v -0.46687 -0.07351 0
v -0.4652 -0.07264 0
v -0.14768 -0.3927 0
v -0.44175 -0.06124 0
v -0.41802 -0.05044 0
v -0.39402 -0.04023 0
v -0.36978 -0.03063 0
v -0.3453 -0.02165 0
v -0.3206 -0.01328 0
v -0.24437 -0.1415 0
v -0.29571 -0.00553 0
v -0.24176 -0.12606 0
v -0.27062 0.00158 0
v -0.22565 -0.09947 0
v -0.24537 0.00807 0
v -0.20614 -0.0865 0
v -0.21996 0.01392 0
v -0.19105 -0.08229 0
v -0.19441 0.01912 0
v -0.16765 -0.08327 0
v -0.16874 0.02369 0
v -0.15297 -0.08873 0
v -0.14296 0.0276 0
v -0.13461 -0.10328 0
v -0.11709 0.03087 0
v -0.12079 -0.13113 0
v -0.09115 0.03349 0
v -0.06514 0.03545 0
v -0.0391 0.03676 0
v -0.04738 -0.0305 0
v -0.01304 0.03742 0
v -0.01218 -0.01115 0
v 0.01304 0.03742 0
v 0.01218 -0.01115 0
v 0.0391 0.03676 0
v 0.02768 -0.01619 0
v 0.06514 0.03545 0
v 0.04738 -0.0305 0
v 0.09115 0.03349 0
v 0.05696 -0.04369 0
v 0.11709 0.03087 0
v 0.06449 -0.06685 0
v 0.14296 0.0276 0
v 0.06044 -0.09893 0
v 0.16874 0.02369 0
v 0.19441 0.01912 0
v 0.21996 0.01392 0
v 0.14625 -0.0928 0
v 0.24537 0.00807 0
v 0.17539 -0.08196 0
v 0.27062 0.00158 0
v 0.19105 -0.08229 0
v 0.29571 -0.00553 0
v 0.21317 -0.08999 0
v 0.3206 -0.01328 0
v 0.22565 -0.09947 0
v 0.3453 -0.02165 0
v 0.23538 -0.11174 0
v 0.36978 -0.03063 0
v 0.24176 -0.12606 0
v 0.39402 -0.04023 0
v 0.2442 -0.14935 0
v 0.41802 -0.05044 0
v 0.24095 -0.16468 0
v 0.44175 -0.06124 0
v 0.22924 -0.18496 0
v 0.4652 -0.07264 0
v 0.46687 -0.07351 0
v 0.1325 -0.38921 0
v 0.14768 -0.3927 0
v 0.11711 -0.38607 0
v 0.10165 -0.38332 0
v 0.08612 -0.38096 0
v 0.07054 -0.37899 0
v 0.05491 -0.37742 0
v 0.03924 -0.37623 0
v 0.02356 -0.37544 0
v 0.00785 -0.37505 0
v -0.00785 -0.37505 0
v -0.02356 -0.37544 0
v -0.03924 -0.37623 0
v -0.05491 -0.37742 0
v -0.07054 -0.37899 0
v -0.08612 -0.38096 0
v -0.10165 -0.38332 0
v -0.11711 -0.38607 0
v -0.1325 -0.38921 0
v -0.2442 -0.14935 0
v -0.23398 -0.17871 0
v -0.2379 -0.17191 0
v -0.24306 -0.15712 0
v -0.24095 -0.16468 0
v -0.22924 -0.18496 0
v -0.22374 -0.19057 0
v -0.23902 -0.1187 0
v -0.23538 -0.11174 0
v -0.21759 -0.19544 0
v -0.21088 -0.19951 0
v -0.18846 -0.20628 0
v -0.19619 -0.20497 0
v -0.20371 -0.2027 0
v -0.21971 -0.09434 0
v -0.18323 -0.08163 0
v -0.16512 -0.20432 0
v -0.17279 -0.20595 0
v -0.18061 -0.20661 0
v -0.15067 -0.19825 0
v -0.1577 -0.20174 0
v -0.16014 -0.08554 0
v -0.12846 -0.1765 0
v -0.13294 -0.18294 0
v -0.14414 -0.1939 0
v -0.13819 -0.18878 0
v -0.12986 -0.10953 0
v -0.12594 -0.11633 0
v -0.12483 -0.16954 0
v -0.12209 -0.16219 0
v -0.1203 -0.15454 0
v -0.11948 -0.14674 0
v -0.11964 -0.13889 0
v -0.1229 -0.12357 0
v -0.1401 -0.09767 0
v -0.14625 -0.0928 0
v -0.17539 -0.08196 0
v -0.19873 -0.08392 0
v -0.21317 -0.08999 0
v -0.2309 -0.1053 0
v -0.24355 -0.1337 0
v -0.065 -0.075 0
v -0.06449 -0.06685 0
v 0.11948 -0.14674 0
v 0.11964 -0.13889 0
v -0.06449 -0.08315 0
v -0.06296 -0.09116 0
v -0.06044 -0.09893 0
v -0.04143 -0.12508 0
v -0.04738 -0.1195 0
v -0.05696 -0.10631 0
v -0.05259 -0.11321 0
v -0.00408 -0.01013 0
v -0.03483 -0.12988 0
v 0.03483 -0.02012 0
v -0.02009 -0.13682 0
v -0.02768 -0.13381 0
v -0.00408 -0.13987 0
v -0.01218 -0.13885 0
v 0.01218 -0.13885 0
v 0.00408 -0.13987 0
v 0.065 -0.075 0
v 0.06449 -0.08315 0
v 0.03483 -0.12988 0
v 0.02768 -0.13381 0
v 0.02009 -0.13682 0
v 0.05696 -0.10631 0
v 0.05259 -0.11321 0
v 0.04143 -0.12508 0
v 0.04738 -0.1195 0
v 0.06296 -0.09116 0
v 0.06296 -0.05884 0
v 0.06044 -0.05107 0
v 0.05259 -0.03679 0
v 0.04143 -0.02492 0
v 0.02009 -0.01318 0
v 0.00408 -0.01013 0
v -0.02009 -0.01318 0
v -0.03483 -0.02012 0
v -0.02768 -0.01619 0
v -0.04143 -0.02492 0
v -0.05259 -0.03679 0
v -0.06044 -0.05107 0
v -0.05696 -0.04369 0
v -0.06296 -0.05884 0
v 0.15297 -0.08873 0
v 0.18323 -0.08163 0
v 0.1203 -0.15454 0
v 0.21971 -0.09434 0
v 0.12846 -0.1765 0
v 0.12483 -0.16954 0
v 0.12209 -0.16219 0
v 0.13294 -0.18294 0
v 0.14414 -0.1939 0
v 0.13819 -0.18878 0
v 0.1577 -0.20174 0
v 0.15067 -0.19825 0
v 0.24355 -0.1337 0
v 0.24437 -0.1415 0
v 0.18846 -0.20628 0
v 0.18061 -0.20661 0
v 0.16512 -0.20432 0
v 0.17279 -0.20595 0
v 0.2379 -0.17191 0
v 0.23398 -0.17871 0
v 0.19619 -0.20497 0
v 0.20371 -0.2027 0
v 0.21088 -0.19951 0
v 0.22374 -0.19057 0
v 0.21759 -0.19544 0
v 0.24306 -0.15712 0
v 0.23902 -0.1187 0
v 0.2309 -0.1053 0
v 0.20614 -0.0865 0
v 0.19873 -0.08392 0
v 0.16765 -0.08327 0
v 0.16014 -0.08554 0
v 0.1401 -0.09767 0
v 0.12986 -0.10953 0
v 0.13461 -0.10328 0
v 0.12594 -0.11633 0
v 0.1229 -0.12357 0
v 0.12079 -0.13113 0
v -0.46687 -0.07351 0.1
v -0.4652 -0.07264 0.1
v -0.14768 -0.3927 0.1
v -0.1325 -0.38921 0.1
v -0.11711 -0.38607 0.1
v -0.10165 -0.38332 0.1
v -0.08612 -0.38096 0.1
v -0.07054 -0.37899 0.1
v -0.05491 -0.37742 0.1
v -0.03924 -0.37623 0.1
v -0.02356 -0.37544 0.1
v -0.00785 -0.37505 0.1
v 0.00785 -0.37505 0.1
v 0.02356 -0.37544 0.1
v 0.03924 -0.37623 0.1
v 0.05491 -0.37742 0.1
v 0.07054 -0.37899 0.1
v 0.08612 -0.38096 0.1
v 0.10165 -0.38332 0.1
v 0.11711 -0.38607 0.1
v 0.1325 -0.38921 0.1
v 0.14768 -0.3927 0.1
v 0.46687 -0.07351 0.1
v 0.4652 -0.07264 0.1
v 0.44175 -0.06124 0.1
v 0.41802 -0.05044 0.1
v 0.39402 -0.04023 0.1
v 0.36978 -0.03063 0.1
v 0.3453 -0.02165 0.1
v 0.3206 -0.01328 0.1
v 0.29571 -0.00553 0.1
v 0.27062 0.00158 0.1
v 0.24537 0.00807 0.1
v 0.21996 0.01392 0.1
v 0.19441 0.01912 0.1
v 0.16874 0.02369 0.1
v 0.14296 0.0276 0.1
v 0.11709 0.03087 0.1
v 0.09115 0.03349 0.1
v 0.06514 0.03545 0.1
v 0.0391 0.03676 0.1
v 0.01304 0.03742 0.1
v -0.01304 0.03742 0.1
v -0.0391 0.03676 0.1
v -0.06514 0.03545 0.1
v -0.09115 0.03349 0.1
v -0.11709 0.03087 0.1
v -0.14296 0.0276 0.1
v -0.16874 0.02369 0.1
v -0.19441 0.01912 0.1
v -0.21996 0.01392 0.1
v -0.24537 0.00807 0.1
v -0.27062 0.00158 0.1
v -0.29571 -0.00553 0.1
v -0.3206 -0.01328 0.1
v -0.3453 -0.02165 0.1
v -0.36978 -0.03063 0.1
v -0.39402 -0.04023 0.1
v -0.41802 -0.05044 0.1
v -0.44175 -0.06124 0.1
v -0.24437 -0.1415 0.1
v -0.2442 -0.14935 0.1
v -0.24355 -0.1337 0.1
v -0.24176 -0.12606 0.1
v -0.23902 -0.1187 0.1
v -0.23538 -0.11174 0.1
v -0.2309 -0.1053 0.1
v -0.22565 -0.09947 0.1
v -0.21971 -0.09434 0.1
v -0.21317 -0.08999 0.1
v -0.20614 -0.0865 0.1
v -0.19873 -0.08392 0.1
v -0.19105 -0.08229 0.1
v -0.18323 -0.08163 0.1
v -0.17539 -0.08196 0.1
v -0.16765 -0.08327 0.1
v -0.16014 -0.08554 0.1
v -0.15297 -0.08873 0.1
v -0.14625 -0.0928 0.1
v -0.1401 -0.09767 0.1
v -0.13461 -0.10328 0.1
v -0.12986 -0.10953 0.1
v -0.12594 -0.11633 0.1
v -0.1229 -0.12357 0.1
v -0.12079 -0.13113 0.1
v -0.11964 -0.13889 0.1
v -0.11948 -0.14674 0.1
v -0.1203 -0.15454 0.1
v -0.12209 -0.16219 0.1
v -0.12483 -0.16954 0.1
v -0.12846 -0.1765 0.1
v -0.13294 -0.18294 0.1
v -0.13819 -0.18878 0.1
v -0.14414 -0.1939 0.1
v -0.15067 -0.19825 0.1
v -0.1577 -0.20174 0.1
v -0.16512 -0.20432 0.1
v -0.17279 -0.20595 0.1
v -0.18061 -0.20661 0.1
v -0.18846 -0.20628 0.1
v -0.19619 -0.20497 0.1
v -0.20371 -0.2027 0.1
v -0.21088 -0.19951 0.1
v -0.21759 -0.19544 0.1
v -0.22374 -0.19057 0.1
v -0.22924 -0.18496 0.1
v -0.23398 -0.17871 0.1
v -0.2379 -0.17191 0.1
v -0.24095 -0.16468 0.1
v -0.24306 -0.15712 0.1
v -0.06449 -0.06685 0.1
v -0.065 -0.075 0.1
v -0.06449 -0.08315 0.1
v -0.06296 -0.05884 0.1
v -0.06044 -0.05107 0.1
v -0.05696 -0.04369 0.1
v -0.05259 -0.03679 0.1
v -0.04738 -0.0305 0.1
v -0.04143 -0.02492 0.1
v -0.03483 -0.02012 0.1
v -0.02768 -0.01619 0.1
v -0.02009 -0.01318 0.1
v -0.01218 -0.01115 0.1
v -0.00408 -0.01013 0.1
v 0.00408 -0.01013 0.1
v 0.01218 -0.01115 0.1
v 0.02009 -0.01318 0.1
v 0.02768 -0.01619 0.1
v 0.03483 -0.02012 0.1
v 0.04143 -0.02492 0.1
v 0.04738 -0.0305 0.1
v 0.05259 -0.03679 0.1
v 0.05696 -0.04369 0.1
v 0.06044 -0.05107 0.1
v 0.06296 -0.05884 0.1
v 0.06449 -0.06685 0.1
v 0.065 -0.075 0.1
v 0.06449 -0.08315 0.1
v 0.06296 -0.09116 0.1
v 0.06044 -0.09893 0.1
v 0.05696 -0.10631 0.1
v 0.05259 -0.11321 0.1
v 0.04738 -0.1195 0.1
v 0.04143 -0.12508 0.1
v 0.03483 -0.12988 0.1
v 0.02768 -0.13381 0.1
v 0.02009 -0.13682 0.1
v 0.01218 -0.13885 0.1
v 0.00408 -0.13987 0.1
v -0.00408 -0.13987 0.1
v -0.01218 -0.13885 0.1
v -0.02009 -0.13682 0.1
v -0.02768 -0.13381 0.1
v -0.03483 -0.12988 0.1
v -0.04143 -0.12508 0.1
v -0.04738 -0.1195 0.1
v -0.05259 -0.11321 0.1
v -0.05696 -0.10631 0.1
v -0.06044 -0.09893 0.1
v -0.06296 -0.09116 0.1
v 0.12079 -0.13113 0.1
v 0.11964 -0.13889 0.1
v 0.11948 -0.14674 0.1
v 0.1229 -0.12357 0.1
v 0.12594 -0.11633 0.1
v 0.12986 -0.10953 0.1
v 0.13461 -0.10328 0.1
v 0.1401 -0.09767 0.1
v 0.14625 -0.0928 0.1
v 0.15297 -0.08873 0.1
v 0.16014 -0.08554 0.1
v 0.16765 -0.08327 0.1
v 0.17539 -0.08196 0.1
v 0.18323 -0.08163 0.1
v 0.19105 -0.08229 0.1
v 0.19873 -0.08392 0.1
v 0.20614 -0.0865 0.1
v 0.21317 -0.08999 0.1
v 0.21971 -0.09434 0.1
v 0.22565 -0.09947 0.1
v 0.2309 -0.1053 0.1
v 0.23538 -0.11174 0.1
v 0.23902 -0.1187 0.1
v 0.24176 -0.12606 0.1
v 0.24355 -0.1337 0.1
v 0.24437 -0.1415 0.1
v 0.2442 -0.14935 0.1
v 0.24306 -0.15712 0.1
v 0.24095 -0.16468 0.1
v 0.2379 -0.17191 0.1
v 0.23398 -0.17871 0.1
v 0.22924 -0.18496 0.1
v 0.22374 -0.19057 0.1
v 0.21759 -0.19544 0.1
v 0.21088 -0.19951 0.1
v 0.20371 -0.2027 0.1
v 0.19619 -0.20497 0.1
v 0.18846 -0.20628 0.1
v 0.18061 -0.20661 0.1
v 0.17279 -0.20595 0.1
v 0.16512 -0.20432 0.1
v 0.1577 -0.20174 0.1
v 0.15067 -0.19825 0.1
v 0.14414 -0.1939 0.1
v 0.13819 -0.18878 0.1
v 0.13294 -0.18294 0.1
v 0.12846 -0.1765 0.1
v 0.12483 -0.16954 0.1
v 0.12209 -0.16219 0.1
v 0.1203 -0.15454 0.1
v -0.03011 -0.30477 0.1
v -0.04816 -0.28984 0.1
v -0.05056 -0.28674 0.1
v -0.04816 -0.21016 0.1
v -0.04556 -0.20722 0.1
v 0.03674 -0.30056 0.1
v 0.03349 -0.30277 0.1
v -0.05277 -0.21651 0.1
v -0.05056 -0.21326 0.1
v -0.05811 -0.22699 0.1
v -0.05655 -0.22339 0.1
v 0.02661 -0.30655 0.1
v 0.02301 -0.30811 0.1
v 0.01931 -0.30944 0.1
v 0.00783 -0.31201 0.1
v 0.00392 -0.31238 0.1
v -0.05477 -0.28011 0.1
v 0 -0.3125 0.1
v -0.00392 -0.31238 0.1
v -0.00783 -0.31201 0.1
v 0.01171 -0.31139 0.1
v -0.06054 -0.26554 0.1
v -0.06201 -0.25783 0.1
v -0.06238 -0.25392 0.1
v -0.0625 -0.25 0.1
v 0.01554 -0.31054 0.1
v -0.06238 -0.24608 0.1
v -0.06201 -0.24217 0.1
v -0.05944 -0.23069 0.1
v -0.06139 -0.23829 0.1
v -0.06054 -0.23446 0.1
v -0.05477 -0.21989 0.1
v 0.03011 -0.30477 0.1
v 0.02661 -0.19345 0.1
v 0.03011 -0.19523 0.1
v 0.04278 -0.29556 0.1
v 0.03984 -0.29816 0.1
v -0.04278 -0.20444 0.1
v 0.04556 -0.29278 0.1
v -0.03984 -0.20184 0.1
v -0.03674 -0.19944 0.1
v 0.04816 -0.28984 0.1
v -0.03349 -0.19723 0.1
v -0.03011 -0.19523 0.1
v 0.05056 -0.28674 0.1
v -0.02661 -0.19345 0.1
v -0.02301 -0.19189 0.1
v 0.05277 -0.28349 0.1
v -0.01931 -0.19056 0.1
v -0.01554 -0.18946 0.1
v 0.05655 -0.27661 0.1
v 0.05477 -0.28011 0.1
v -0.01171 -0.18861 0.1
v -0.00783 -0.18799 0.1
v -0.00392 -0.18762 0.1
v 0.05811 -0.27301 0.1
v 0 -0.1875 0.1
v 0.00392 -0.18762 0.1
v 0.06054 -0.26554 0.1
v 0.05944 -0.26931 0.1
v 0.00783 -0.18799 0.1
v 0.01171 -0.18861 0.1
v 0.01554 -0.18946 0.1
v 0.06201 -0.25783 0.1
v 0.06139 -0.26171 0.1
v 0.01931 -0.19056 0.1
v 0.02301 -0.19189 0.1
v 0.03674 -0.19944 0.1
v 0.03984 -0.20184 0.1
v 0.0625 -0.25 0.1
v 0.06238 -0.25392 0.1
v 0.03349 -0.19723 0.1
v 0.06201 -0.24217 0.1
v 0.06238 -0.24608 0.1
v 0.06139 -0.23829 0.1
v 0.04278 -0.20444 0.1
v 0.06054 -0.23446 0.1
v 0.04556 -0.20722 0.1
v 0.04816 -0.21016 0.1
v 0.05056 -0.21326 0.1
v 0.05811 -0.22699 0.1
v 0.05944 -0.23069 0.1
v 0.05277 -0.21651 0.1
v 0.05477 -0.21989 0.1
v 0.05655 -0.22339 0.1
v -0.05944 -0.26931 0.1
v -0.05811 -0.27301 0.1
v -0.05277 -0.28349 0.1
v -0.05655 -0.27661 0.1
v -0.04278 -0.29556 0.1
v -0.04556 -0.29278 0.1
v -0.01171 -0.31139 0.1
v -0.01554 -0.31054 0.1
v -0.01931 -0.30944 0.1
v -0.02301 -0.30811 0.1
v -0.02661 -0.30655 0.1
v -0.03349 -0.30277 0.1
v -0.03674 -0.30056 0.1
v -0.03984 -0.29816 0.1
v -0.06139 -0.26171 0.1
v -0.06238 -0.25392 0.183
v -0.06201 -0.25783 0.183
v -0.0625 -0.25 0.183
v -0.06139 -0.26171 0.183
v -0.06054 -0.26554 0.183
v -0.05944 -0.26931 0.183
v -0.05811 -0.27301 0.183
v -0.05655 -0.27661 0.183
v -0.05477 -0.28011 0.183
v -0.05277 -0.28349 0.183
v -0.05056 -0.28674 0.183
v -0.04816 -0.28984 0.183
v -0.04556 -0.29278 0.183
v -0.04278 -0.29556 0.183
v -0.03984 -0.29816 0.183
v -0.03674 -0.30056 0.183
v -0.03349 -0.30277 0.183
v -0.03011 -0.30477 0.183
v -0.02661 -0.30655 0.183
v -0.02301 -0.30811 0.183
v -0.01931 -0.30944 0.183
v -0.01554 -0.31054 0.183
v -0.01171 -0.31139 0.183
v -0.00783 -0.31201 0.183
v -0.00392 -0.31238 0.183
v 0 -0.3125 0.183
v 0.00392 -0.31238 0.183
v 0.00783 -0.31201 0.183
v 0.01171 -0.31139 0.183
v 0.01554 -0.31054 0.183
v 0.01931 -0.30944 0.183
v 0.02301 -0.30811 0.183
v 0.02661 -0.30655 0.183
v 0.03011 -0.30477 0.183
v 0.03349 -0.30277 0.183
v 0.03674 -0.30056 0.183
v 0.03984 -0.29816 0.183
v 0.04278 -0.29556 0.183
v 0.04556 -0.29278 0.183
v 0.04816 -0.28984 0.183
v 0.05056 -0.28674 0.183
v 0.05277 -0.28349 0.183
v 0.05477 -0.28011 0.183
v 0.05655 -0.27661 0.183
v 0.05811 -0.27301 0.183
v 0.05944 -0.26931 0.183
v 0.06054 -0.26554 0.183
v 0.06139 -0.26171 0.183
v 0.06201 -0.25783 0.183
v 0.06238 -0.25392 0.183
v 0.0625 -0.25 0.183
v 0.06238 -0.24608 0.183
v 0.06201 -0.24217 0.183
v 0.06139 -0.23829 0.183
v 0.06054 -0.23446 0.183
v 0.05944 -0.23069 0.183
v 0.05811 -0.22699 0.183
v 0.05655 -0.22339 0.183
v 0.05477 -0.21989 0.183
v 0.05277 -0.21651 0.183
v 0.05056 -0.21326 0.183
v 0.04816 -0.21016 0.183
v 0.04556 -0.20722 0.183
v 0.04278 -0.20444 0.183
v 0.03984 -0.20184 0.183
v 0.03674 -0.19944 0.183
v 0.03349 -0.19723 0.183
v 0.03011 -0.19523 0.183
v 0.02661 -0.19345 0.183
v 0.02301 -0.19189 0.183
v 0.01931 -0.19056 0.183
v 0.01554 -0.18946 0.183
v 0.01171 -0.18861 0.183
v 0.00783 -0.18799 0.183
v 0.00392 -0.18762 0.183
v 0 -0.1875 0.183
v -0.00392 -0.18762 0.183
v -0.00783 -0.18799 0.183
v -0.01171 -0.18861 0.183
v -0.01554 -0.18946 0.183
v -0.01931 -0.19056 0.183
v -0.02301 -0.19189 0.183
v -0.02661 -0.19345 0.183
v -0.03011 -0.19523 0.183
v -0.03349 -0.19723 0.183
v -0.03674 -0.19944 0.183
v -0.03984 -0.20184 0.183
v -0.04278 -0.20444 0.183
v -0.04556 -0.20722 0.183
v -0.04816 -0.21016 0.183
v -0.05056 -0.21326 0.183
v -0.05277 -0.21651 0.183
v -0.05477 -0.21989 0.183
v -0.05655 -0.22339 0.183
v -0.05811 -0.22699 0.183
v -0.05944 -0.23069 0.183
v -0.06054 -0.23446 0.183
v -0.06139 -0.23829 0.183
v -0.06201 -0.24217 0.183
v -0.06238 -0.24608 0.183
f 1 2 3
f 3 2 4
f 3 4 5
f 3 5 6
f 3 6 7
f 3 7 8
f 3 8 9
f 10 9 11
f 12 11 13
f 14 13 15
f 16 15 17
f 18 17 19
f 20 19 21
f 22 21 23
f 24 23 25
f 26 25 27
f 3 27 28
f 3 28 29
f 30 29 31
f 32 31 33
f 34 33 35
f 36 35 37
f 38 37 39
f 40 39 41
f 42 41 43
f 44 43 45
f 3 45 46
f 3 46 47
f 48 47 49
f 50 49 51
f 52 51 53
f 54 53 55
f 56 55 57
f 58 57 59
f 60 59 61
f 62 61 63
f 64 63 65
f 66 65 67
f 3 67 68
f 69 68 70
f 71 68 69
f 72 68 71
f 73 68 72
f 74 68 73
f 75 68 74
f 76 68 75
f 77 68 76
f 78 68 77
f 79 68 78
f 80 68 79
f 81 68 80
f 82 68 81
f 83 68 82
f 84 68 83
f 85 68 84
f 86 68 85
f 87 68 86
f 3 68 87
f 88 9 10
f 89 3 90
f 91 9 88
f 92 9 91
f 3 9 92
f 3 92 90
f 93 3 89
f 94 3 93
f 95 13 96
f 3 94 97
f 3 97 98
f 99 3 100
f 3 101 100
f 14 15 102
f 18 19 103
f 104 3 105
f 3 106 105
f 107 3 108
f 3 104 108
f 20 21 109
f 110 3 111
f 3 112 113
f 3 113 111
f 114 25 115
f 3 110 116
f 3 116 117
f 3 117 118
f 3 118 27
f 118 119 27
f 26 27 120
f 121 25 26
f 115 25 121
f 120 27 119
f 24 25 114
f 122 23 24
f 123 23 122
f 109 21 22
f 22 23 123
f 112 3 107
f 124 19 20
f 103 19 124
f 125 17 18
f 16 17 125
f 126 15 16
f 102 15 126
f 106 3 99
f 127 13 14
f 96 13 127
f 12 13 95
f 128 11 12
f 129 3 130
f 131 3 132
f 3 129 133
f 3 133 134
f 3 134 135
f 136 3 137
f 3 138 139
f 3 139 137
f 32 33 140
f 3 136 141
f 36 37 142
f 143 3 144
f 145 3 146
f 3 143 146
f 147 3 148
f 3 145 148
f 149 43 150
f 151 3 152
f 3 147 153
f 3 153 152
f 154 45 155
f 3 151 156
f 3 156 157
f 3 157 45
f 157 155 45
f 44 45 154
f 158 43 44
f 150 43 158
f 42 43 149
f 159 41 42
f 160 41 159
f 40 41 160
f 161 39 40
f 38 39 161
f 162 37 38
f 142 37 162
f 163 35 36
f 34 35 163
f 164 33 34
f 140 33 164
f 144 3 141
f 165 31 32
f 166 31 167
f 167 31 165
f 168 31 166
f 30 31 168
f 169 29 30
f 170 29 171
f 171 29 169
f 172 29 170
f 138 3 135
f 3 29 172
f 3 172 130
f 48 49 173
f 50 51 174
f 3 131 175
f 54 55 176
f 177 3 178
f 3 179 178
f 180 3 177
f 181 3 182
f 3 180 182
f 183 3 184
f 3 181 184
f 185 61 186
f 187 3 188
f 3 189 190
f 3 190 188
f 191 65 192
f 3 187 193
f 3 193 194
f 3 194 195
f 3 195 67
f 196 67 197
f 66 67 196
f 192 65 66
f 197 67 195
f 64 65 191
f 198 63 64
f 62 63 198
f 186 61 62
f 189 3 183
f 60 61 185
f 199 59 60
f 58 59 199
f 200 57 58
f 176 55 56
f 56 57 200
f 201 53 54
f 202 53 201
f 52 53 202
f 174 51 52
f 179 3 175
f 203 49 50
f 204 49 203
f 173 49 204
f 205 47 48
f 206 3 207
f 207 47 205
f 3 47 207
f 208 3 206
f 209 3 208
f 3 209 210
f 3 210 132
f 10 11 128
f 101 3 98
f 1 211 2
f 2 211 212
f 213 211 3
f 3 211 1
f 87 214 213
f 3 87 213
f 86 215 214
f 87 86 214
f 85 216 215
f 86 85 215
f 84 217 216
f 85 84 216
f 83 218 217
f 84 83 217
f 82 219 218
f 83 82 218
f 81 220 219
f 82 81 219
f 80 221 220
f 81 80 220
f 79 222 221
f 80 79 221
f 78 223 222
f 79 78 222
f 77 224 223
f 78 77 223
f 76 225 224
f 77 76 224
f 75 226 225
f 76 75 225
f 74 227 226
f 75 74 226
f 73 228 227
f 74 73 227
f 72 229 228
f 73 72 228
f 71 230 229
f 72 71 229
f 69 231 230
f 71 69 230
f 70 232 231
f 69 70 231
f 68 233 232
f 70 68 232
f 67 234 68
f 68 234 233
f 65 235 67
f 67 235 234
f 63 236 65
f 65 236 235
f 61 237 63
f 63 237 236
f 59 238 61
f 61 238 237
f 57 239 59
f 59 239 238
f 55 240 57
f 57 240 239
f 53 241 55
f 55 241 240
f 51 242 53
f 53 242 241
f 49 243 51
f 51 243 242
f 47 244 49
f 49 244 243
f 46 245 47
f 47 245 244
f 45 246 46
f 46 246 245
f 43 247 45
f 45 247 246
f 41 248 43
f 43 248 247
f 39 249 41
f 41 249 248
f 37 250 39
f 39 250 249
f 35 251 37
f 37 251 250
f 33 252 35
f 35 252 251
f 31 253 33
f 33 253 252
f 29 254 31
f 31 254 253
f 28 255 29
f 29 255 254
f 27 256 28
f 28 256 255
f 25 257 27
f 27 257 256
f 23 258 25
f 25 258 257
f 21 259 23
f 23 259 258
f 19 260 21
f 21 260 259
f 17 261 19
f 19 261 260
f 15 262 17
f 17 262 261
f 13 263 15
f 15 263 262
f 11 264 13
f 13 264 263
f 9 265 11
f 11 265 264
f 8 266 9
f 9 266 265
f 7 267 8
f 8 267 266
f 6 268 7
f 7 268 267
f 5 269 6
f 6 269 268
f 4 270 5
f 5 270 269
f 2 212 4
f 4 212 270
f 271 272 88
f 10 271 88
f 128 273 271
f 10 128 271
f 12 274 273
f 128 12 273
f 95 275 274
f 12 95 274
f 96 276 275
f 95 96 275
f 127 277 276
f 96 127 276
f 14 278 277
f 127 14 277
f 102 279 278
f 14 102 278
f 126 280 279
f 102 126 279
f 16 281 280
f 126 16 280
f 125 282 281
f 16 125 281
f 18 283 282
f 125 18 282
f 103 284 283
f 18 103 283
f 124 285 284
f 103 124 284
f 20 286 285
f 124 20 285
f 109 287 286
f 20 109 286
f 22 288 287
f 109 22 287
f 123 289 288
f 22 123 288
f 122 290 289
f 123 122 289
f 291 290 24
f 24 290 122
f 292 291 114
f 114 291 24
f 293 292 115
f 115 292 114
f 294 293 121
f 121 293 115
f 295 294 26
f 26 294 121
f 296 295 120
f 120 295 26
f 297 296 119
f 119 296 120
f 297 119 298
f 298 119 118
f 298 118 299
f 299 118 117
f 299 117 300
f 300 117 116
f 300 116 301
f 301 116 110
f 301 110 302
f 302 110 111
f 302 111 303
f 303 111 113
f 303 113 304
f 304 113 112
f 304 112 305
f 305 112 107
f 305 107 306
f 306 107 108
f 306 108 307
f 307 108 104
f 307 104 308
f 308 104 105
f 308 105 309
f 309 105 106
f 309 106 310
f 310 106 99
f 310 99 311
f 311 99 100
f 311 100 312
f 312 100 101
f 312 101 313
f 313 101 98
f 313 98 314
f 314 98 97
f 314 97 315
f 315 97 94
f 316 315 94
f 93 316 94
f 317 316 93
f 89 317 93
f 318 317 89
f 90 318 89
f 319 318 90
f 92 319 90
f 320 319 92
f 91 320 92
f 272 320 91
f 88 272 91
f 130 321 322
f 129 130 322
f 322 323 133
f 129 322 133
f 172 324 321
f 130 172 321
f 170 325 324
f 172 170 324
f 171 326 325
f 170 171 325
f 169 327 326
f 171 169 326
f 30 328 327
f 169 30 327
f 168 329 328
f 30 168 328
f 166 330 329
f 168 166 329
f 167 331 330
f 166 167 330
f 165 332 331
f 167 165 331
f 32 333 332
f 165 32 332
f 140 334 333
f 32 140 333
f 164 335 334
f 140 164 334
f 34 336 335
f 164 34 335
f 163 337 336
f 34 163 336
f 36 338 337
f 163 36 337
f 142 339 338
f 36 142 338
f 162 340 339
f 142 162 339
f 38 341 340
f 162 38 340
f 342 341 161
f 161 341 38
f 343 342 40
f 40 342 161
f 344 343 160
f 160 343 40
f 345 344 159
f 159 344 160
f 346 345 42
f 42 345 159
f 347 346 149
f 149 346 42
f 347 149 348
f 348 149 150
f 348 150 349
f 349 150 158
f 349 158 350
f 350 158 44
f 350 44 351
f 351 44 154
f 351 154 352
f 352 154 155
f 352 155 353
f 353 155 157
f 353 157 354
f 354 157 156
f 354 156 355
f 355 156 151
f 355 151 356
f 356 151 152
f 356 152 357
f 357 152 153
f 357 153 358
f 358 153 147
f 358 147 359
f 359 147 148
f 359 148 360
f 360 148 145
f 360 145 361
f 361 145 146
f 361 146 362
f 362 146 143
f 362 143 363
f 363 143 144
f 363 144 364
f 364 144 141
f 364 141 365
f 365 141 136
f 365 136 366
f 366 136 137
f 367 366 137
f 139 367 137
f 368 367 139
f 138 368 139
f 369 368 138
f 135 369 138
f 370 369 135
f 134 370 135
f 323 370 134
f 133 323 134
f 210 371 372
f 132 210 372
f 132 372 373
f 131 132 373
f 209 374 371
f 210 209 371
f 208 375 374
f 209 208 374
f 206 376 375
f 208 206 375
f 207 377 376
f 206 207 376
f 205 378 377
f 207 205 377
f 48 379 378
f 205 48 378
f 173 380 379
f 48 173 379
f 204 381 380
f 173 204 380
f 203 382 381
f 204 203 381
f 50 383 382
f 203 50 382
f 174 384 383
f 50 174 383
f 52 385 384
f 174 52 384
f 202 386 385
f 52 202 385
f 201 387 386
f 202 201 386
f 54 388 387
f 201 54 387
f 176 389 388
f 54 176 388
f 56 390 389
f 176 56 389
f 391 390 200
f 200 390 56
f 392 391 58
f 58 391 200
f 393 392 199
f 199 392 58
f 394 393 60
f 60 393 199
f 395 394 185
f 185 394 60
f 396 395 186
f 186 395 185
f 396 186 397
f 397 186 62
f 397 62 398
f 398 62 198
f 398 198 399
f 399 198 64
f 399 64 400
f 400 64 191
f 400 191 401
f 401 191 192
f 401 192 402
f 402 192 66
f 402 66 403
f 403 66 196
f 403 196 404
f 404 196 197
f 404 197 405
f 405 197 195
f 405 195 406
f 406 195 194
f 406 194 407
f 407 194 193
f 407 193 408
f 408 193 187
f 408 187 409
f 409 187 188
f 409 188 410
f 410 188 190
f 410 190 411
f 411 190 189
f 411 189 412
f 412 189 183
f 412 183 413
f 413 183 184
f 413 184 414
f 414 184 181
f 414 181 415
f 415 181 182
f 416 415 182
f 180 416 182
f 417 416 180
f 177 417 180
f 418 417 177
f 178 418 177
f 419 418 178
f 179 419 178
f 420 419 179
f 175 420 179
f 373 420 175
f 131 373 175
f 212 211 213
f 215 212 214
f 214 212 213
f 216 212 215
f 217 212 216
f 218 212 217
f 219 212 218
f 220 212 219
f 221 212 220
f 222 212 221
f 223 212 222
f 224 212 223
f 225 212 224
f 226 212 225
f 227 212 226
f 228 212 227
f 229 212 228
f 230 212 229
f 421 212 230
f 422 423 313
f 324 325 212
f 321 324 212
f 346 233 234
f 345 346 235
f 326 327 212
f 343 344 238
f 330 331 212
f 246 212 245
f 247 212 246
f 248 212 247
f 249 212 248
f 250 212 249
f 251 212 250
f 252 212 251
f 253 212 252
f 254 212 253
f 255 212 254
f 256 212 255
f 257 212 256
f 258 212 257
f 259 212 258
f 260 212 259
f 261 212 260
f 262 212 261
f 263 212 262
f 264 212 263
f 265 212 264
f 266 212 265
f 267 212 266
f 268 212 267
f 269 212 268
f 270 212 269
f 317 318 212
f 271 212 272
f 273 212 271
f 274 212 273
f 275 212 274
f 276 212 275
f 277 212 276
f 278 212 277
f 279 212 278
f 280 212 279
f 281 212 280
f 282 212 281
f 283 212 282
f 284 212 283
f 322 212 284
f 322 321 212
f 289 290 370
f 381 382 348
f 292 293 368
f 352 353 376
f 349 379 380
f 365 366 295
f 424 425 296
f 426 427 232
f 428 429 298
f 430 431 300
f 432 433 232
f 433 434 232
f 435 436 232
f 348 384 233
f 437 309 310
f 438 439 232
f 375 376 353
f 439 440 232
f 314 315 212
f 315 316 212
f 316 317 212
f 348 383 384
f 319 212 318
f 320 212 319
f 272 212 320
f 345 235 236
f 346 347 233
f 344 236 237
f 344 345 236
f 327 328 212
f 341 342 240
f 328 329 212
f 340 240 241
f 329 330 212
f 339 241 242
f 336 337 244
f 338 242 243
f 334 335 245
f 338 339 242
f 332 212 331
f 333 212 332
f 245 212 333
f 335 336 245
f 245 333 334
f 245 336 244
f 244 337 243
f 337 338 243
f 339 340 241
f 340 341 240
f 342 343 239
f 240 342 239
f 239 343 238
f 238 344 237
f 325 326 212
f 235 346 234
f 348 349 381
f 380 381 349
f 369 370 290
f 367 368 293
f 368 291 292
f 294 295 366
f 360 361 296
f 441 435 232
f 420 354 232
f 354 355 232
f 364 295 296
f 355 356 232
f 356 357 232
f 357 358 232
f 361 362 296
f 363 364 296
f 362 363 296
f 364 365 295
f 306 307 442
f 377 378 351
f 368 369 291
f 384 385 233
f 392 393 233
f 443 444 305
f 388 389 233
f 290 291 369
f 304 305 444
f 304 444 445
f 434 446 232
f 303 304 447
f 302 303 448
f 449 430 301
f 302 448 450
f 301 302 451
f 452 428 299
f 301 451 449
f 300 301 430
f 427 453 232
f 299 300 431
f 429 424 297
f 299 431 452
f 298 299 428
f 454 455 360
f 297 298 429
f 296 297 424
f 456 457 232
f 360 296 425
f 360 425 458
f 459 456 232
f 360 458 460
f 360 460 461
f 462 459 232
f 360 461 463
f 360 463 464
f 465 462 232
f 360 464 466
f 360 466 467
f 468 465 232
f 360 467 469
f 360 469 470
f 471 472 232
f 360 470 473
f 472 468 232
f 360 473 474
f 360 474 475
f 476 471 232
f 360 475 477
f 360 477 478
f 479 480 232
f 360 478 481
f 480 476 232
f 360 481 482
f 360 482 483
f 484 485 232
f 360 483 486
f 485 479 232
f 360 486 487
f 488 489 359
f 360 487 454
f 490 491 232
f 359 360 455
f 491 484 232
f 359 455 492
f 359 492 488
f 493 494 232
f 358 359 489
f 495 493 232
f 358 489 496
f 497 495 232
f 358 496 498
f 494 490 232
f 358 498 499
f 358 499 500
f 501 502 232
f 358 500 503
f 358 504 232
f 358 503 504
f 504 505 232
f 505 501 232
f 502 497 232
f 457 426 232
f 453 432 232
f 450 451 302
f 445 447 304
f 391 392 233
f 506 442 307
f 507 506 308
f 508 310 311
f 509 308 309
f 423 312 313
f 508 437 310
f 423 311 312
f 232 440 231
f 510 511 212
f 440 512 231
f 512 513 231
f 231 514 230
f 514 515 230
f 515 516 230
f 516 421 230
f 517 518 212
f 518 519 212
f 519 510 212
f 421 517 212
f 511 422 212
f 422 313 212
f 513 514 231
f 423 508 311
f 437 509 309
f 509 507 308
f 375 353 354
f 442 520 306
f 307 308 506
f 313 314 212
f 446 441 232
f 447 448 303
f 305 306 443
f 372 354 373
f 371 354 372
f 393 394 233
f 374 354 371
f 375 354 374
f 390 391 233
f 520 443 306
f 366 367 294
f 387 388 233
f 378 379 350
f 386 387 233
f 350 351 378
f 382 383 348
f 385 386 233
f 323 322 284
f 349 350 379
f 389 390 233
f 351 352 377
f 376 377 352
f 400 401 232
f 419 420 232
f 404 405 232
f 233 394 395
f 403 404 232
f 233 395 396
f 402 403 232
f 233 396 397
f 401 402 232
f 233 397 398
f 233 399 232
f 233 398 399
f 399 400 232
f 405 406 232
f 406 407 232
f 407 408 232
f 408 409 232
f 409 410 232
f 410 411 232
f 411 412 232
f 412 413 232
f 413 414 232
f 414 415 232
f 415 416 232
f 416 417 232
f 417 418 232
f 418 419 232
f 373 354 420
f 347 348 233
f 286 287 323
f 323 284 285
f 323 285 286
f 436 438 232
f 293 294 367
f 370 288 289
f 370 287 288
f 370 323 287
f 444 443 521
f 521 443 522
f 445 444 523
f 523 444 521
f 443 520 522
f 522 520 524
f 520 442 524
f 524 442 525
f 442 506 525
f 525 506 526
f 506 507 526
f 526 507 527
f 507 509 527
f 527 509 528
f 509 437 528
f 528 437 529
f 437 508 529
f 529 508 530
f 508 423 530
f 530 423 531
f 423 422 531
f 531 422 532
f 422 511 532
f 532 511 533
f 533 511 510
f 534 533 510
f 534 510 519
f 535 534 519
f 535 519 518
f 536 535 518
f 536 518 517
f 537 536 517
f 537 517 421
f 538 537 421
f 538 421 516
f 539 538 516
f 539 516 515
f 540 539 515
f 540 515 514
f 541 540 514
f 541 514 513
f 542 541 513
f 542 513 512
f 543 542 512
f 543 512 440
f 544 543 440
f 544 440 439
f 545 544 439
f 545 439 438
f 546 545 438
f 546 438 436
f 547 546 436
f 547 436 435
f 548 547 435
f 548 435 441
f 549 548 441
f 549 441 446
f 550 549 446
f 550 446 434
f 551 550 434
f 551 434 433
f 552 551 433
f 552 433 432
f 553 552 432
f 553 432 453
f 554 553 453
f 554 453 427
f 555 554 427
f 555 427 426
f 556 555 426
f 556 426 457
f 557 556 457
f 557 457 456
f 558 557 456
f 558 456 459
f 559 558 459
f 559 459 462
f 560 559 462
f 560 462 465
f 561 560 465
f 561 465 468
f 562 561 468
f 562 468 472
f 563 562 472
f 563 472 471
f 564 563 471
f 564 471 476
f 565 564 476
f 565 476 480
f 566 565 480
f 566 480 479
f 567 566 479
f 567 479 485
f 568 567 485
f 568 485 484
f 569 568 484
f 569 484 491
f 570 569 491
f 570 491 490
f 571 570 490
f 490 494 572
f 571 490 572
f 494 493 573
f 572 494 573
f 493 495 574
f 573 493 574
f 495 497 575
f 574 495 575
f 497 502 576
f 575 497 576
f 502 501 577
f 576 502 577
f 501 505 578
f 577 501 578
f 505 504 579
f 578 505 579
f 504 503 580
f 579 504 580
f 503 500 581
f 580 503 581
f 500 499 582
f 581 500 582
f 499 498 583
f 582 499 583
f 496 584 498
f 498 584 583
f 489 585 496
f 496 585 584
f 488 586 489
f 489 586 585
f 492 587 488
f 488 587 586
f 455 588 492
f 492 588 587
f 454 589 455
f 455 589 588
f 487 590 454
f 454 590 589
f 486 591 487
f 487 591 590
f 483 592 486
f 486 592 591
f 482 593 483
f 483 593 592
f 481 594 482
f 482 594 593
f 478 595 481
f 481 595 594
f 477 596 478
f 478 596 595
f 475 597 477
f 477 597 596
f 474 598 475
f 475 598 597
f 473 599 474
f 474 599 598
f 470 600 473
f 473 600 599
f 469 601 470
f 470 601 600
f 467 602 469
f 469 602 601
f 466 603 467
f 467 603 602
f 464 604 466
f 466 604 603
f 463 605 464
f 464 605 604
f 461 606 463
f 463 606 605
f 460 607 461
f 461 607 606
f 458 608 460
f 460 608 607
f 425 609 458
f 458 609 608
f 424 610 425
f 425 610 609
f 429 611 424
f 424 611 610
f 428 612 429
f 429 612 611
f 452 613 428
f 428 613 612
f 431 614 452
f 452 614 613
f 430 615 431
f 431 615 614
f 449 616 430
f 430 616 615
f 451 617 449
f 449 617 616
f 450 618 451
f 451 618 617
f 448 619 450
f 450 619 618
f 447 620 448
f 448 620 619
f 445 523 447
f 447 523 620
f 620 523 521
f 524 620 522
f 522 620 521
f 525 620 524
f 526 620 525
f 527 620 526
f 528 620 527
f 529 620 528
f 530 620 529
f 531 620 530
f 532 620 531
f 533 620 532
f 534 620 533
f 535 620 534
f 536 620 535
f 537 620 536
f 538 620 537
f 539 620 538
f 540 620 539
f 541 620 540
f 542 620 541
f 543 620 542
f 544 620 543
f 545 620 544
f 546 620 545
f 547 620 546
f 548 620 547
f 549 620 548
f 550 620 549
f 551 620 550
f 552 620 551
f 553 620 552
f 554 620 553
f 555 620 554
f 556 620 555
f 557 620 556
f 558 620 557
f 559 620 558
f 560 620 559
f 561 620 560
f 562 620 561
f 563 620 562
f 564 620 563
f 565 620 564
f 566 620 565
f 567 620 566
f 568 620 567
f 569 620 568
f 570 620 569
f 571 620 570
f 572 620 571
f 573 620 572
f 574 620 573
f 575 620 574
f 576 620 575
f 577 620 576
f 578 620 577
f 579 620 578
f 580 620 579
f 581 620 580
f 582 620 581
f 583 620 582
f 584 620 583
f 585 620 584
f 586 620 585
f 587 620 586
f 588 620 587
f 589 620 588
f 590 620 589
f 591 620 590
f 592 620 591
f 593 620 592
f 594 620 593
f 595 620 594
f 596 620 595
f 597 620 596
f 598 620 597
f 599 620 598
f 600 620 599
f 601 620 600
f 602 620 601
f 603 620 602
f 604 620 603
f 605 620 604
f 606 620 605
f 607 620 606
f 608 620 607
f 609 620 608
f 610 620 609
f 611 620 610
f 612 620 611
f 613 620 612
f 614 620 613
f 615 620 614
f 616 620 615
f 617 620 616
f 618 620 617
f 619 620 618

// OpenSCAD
deckHeight = 0.063;
spacerCapHeight = 0.100;
bushingHeight = 0.093;
offsetMarginMM = 0.25;
gearOffsetMM = 15.915 + offsetMarginMM;
gearOffsetIN = gearOffsetMM / 25.4;
///indicatorOffset = 1.045;
indicatorOffset = 1.35/2;

// Calculate position of drive gear bushings.
driveAngle = asin(indicatorOffset/(2*gearOffsetIN));
bushingOffsetX = gearOffsetIN*sin(driveAngle);
bushingOffsetY = gearOffsetIN*cos(driveAngle);

spacerHeight = deckHeight + 0.150 - deckHeight + bushingHeight + 0.375 + bushingHeight - spacerCapHeight;

module HexNut440(x, y, rot)
{
  translate([x, y, 0 - 0.020])
    rotate(a = rot, v = [0, 0, 1])
      union() {
        cylinder(h = 0.075 + 0.025, d = 0.200 * 1.15, center = false, $fn = 6);
        cylinder(h = 0.275, d = 0.125, center = true, $fn = 100);
      }
}

module MountingScrewNut(rot)
{
  rotate(a = rot, v = [0, 0, 1])
    translate([0, 0.875, 0])
      cylinder(h = 0.500, d = 0.125, center = true, $fn = 50);
}

module AlignmentPin(rot)
{
  rotate(a = rot, v=[0,0,1])
    translate([0, 0.75, spacerCapHeight - 0.010])
      cylinder(h = 0.093, d = 0.125, center = false, $fn = 100);
}


// Support wall caps.
translate([0, -1, 0])
  union() {
    difference() {
      cylinder(h = spacerCapHeight, d = 2.250 - 0.1750, center = false, $fn = 250);

      cylinder(h = 2, d = 2.2500 - 1.000, center = true, $fn = 250);

      rotate(a=-90, v=[0,0,1])
        cube([1.00, 4, 3], center = true);
      rotate(a=-45, v=[0,0,1])
        cube([0.650, 4, 3], center = true);
      rotate(a=45, v=[0,0,1])
        cube([0.650, 4, 3], center = true);

      translate([0, -1, 0]) cube([2,2,2], center = true);

      // Relief for spacer screw.
      translate([0, 0.925, 0])
        cylinder(h=0.250, d=0.130, center=true, $fn=50);

      // Mounting screw nut 1
      MountingScrewNut(12);
      MountingScrewNut(-12);
    }
    AlignmentPin(0);
}
